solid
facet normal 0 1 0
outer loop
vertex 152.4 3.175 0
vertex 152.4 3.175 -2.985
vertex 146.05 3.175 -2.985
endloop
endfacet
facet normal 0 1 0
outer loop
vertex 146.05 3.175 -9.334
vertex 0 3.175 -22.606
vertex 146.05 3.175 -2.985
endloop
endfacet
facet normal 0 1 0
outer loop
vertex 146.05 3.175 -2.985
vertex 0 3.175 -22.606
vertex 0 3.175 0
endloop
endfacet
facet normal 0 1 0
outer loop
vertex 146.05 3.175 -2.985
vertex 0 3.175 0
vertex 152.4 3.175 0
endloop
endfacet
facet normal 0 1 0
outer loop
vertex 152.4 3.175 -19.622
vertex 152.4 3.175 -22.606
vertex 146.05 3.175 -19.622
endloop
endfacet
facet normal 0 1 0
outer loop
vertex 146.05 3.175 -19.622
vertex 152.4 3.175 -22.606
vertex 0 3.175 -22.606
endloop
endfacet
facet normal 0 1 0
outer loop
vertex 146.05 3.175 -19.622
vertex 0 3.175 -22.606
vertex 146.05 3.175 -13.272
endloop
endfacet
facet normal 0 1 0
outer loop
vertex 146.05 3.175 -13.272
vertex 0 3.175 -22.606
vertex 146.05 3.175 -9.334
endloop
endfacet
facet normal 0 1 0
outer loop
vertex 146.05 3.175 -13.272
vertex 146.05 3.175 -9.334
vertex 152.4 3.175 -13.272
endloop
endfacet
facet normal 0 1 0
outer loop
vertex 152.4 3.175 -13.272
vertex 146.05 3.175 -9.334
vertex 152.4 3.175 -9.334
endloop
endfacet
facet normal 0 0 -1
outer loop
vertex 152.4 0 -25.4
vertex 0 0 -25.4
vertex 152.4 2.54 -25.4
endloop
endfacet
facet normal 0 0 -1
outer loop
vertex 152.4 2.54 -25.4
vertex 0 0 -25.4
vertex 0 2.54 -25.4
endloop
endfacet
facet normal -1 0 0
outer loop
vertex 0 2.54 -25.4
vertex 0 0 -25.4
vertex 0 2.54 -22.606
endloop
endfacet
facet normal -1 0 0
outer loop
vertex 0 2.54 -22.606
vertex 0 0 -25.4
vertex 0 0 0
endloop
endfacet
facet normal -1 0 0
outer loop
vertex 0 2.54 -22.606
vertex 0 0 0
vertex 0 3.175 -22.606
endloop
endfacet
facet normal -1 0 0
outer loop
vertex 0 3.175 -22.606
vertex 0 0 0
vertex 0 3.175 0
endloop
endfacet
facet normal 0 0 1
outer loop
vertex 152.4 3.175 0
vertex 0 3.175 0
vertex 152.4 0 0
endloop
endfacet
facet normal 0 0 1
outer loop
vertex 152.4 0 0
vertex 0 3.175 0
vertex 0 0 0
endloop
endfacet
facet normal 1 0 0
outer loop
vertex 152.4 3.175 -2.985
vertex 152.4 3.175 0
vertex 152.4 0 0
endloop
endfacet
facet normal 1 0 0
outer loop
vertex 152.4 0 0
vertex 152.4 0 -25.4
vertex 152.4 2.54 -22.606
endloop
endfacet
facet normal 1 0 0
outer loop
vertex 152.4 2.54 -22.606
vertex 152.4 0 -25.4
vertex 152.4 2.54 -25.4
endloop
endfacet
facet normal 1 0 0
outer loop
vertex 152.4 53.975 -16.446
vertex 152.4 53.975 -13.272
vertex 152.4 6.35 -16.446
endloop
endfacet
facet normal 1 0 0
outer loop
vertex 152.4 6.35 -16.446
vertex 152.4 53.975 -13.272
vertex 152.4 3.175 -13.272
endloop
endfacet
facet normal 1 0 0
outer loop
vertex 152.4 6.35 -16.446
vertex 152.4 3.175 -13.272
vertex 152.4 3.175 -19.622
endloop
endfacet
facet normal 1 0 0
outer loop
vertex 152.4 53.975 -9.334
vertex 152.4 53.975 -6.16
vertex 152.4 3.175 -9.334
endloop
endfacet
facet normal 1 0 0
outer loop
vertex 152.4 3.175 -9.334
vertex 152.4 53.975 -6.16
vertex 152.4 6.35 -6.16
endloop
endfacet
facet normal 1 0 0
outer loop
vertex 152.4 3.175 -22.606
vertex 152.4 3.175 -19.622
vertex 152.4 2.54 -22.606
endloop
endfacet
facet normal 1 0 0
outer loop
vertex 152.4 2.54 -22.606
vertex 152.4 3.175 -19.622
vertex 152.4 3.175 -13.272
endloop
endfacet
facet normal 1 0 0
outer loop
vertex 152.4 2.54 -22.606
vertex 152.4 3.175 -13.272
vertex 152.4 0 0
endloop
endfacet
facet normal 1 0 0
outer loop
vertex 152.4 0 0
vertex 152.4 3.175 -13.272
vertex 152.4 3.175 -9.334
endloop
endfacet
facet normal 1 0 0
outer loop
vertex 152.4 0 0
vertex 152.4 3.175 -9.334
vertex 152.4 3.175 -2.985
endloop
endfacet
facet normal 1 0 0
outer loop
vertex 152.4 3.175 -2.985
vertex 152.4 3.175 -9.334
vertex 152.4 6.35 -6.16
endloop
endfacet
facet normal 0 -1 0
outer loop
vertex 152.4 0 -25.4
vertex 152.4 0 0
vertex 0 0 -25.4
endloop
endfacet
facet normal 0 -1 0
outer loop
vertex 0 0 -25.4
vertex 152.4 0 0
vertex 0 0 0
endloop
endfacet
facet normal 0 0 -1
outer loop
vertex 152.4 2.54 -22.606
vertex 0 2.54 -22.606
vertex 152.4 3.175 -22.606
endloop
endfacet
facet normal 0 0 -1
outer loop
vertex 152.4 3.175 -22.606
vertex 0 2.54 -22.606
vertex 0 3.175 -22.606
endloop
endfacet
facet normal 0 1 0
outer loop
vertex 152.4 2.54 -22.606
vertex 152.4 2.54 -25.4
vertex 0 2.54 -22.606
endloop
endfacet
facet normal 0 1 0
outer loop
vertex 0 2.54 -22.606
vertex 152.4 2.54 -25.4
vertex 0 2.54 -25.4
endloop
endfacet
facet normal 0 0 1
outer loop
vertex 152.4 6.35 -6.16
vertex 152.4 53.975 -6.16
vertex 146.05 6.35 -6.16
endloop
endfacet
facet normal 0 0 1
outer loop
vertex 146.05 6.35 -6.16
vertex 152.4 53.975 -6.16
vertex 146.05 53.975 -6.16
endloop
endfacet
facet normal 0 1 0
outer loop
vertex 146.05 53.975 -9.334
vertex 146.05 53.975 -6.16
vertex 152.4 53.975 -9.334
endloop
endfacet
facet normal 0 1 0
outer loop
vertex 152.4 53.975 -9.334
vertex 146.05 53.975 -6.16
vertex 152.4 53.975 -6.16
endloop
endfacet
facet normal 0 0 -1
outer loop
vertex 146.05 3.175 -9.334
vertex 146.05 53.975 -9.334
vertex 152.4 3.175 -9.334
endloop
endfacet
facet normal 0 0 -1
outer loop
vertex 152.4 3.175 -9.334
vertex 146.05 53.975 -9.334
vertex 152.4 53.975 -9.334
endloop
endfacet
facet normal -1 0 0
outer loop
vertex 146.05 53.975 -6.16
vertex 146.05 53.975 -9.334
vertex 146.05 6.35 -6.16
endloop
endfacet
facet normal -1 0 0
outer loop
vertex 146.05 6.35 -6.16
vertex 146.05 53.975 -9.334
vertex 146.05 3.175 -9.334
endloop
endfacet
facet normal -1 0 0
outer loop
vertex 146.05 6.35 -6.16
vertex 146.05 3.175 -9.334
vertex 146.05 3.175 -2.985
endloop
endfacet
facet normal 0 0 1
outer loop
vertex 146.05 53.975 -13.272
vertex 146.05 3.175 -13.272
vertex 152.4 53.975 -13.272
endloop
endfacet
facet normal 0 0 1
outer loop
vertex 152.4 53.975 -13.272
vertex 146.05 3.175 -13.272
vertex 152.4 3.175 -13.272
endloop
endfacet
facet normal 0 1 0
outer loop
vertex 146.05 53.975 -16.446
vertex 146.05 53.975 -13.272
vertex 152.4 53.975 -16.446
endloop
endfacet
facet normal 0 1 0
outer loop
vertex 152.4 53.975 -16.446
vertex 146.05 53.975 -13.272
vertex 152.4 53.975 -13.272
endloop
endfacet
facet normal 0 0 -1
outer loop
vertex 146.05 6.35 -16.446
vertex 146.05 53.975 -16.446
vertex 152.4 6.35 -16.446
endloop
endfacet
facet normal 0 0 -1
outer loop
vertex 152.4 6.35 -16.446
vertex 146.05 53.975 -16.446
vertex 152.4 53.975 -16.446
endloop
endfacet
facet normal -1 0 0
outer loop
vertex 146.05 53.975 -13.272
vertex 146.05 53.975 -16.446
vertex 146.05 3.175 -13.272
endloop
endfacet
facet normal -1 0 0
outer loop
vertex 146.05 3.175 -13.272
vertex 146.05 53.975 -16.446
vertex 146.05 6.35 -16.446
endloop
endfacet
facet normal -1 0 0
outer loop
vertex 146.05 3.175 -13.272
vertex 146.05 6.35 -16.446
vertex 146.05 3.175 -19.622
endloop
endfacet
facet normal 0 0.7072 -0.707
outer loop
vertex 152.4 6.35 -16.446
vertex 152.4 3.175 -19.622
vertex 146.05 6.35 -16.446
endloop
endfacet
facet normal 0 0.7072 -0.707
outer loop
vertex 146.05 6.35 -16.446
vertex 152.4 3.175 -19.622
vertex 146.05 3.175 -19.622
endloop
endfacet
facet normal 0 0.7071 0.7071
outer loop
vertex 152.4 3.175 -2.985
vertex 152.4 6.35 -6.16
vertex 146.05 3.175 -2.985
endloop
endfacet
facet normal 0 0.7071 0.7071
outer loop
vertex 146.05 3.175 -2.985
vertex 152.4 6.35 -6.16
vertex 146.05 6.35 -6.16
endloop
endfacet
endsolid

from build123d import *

# Parameters (mm, degrees)
SKETCH1_W           = 152.4
SKETCH1_H           = 25.4
BOSS_EXTRUDE1_DEPTH = 3.175
SKETCH2_W           = 152.4
SKETCH2_H           = 2.794
CUT_EXTRUDE1_DEPTH  = 0.635
SKETCH4_W           = 3.175
SKETCH4_H           = 50.8
BOSS_EXTRUDE2_DEPTH = 6.35
CHAMFER2_SIZE       = 3.175


with BuildPart() as part:
    # Sketch1 → Boss-Extrude1 (new body)
    with BuildSketch(Plane(origin=(0, 0, 0), x_dir=(1, 0, 0), z_dir=(0, 1, 0))):
        with Locations((76.2, 12.7)):
            Rectangle(SKETCH1_W, SKETCH1_H)
    extrude(amount=BOSS_EXTRUDE1_DEPTH)

    # Sketch2 → Cut-Extrude1 (cut)
    with BuildSketch(Plane(origin=(0, 3.175, 0), x_dir=(1, 0, 0), z_dir=(0, 1, 0))):
        with Locations((76.2, 24.003)):
            Rectangle(SKETCH2_W, SKETCH2_H)
    extrude(amount=-CUT_EXTRUDE1_DEPTH, mode=Mode.SUBTRACT)

    # Sketch4 → Boss-Extrude2 (add)
    with BuildSketch(Plane(origin=(152.4, 0, 0), x_dir=(0, 0, -1), z_dir=(1, 0, 0))):
        with Locations((7.747, 28.575)):
            Rectangle(SKETCH4_W, SKETCH4_H)
        with Locations((14.859, 28.575)):
            Rectangle(SKETCH4_W, SKETCH4_H)
    extrude(amount=-BOSS_EXTRUDE2_DEPTH)

    # Chamfer2
    chamfer2_edges = [part.edges().sort_by_distance(p)[0] for p in [
        (149.225, 3.175, -6.1595),
        (149.225, 3.175, -16.4465),
    ]]
    chamfer(chamfer2_edges, length=CHAMFER2_SIZE)


solid = part.part
